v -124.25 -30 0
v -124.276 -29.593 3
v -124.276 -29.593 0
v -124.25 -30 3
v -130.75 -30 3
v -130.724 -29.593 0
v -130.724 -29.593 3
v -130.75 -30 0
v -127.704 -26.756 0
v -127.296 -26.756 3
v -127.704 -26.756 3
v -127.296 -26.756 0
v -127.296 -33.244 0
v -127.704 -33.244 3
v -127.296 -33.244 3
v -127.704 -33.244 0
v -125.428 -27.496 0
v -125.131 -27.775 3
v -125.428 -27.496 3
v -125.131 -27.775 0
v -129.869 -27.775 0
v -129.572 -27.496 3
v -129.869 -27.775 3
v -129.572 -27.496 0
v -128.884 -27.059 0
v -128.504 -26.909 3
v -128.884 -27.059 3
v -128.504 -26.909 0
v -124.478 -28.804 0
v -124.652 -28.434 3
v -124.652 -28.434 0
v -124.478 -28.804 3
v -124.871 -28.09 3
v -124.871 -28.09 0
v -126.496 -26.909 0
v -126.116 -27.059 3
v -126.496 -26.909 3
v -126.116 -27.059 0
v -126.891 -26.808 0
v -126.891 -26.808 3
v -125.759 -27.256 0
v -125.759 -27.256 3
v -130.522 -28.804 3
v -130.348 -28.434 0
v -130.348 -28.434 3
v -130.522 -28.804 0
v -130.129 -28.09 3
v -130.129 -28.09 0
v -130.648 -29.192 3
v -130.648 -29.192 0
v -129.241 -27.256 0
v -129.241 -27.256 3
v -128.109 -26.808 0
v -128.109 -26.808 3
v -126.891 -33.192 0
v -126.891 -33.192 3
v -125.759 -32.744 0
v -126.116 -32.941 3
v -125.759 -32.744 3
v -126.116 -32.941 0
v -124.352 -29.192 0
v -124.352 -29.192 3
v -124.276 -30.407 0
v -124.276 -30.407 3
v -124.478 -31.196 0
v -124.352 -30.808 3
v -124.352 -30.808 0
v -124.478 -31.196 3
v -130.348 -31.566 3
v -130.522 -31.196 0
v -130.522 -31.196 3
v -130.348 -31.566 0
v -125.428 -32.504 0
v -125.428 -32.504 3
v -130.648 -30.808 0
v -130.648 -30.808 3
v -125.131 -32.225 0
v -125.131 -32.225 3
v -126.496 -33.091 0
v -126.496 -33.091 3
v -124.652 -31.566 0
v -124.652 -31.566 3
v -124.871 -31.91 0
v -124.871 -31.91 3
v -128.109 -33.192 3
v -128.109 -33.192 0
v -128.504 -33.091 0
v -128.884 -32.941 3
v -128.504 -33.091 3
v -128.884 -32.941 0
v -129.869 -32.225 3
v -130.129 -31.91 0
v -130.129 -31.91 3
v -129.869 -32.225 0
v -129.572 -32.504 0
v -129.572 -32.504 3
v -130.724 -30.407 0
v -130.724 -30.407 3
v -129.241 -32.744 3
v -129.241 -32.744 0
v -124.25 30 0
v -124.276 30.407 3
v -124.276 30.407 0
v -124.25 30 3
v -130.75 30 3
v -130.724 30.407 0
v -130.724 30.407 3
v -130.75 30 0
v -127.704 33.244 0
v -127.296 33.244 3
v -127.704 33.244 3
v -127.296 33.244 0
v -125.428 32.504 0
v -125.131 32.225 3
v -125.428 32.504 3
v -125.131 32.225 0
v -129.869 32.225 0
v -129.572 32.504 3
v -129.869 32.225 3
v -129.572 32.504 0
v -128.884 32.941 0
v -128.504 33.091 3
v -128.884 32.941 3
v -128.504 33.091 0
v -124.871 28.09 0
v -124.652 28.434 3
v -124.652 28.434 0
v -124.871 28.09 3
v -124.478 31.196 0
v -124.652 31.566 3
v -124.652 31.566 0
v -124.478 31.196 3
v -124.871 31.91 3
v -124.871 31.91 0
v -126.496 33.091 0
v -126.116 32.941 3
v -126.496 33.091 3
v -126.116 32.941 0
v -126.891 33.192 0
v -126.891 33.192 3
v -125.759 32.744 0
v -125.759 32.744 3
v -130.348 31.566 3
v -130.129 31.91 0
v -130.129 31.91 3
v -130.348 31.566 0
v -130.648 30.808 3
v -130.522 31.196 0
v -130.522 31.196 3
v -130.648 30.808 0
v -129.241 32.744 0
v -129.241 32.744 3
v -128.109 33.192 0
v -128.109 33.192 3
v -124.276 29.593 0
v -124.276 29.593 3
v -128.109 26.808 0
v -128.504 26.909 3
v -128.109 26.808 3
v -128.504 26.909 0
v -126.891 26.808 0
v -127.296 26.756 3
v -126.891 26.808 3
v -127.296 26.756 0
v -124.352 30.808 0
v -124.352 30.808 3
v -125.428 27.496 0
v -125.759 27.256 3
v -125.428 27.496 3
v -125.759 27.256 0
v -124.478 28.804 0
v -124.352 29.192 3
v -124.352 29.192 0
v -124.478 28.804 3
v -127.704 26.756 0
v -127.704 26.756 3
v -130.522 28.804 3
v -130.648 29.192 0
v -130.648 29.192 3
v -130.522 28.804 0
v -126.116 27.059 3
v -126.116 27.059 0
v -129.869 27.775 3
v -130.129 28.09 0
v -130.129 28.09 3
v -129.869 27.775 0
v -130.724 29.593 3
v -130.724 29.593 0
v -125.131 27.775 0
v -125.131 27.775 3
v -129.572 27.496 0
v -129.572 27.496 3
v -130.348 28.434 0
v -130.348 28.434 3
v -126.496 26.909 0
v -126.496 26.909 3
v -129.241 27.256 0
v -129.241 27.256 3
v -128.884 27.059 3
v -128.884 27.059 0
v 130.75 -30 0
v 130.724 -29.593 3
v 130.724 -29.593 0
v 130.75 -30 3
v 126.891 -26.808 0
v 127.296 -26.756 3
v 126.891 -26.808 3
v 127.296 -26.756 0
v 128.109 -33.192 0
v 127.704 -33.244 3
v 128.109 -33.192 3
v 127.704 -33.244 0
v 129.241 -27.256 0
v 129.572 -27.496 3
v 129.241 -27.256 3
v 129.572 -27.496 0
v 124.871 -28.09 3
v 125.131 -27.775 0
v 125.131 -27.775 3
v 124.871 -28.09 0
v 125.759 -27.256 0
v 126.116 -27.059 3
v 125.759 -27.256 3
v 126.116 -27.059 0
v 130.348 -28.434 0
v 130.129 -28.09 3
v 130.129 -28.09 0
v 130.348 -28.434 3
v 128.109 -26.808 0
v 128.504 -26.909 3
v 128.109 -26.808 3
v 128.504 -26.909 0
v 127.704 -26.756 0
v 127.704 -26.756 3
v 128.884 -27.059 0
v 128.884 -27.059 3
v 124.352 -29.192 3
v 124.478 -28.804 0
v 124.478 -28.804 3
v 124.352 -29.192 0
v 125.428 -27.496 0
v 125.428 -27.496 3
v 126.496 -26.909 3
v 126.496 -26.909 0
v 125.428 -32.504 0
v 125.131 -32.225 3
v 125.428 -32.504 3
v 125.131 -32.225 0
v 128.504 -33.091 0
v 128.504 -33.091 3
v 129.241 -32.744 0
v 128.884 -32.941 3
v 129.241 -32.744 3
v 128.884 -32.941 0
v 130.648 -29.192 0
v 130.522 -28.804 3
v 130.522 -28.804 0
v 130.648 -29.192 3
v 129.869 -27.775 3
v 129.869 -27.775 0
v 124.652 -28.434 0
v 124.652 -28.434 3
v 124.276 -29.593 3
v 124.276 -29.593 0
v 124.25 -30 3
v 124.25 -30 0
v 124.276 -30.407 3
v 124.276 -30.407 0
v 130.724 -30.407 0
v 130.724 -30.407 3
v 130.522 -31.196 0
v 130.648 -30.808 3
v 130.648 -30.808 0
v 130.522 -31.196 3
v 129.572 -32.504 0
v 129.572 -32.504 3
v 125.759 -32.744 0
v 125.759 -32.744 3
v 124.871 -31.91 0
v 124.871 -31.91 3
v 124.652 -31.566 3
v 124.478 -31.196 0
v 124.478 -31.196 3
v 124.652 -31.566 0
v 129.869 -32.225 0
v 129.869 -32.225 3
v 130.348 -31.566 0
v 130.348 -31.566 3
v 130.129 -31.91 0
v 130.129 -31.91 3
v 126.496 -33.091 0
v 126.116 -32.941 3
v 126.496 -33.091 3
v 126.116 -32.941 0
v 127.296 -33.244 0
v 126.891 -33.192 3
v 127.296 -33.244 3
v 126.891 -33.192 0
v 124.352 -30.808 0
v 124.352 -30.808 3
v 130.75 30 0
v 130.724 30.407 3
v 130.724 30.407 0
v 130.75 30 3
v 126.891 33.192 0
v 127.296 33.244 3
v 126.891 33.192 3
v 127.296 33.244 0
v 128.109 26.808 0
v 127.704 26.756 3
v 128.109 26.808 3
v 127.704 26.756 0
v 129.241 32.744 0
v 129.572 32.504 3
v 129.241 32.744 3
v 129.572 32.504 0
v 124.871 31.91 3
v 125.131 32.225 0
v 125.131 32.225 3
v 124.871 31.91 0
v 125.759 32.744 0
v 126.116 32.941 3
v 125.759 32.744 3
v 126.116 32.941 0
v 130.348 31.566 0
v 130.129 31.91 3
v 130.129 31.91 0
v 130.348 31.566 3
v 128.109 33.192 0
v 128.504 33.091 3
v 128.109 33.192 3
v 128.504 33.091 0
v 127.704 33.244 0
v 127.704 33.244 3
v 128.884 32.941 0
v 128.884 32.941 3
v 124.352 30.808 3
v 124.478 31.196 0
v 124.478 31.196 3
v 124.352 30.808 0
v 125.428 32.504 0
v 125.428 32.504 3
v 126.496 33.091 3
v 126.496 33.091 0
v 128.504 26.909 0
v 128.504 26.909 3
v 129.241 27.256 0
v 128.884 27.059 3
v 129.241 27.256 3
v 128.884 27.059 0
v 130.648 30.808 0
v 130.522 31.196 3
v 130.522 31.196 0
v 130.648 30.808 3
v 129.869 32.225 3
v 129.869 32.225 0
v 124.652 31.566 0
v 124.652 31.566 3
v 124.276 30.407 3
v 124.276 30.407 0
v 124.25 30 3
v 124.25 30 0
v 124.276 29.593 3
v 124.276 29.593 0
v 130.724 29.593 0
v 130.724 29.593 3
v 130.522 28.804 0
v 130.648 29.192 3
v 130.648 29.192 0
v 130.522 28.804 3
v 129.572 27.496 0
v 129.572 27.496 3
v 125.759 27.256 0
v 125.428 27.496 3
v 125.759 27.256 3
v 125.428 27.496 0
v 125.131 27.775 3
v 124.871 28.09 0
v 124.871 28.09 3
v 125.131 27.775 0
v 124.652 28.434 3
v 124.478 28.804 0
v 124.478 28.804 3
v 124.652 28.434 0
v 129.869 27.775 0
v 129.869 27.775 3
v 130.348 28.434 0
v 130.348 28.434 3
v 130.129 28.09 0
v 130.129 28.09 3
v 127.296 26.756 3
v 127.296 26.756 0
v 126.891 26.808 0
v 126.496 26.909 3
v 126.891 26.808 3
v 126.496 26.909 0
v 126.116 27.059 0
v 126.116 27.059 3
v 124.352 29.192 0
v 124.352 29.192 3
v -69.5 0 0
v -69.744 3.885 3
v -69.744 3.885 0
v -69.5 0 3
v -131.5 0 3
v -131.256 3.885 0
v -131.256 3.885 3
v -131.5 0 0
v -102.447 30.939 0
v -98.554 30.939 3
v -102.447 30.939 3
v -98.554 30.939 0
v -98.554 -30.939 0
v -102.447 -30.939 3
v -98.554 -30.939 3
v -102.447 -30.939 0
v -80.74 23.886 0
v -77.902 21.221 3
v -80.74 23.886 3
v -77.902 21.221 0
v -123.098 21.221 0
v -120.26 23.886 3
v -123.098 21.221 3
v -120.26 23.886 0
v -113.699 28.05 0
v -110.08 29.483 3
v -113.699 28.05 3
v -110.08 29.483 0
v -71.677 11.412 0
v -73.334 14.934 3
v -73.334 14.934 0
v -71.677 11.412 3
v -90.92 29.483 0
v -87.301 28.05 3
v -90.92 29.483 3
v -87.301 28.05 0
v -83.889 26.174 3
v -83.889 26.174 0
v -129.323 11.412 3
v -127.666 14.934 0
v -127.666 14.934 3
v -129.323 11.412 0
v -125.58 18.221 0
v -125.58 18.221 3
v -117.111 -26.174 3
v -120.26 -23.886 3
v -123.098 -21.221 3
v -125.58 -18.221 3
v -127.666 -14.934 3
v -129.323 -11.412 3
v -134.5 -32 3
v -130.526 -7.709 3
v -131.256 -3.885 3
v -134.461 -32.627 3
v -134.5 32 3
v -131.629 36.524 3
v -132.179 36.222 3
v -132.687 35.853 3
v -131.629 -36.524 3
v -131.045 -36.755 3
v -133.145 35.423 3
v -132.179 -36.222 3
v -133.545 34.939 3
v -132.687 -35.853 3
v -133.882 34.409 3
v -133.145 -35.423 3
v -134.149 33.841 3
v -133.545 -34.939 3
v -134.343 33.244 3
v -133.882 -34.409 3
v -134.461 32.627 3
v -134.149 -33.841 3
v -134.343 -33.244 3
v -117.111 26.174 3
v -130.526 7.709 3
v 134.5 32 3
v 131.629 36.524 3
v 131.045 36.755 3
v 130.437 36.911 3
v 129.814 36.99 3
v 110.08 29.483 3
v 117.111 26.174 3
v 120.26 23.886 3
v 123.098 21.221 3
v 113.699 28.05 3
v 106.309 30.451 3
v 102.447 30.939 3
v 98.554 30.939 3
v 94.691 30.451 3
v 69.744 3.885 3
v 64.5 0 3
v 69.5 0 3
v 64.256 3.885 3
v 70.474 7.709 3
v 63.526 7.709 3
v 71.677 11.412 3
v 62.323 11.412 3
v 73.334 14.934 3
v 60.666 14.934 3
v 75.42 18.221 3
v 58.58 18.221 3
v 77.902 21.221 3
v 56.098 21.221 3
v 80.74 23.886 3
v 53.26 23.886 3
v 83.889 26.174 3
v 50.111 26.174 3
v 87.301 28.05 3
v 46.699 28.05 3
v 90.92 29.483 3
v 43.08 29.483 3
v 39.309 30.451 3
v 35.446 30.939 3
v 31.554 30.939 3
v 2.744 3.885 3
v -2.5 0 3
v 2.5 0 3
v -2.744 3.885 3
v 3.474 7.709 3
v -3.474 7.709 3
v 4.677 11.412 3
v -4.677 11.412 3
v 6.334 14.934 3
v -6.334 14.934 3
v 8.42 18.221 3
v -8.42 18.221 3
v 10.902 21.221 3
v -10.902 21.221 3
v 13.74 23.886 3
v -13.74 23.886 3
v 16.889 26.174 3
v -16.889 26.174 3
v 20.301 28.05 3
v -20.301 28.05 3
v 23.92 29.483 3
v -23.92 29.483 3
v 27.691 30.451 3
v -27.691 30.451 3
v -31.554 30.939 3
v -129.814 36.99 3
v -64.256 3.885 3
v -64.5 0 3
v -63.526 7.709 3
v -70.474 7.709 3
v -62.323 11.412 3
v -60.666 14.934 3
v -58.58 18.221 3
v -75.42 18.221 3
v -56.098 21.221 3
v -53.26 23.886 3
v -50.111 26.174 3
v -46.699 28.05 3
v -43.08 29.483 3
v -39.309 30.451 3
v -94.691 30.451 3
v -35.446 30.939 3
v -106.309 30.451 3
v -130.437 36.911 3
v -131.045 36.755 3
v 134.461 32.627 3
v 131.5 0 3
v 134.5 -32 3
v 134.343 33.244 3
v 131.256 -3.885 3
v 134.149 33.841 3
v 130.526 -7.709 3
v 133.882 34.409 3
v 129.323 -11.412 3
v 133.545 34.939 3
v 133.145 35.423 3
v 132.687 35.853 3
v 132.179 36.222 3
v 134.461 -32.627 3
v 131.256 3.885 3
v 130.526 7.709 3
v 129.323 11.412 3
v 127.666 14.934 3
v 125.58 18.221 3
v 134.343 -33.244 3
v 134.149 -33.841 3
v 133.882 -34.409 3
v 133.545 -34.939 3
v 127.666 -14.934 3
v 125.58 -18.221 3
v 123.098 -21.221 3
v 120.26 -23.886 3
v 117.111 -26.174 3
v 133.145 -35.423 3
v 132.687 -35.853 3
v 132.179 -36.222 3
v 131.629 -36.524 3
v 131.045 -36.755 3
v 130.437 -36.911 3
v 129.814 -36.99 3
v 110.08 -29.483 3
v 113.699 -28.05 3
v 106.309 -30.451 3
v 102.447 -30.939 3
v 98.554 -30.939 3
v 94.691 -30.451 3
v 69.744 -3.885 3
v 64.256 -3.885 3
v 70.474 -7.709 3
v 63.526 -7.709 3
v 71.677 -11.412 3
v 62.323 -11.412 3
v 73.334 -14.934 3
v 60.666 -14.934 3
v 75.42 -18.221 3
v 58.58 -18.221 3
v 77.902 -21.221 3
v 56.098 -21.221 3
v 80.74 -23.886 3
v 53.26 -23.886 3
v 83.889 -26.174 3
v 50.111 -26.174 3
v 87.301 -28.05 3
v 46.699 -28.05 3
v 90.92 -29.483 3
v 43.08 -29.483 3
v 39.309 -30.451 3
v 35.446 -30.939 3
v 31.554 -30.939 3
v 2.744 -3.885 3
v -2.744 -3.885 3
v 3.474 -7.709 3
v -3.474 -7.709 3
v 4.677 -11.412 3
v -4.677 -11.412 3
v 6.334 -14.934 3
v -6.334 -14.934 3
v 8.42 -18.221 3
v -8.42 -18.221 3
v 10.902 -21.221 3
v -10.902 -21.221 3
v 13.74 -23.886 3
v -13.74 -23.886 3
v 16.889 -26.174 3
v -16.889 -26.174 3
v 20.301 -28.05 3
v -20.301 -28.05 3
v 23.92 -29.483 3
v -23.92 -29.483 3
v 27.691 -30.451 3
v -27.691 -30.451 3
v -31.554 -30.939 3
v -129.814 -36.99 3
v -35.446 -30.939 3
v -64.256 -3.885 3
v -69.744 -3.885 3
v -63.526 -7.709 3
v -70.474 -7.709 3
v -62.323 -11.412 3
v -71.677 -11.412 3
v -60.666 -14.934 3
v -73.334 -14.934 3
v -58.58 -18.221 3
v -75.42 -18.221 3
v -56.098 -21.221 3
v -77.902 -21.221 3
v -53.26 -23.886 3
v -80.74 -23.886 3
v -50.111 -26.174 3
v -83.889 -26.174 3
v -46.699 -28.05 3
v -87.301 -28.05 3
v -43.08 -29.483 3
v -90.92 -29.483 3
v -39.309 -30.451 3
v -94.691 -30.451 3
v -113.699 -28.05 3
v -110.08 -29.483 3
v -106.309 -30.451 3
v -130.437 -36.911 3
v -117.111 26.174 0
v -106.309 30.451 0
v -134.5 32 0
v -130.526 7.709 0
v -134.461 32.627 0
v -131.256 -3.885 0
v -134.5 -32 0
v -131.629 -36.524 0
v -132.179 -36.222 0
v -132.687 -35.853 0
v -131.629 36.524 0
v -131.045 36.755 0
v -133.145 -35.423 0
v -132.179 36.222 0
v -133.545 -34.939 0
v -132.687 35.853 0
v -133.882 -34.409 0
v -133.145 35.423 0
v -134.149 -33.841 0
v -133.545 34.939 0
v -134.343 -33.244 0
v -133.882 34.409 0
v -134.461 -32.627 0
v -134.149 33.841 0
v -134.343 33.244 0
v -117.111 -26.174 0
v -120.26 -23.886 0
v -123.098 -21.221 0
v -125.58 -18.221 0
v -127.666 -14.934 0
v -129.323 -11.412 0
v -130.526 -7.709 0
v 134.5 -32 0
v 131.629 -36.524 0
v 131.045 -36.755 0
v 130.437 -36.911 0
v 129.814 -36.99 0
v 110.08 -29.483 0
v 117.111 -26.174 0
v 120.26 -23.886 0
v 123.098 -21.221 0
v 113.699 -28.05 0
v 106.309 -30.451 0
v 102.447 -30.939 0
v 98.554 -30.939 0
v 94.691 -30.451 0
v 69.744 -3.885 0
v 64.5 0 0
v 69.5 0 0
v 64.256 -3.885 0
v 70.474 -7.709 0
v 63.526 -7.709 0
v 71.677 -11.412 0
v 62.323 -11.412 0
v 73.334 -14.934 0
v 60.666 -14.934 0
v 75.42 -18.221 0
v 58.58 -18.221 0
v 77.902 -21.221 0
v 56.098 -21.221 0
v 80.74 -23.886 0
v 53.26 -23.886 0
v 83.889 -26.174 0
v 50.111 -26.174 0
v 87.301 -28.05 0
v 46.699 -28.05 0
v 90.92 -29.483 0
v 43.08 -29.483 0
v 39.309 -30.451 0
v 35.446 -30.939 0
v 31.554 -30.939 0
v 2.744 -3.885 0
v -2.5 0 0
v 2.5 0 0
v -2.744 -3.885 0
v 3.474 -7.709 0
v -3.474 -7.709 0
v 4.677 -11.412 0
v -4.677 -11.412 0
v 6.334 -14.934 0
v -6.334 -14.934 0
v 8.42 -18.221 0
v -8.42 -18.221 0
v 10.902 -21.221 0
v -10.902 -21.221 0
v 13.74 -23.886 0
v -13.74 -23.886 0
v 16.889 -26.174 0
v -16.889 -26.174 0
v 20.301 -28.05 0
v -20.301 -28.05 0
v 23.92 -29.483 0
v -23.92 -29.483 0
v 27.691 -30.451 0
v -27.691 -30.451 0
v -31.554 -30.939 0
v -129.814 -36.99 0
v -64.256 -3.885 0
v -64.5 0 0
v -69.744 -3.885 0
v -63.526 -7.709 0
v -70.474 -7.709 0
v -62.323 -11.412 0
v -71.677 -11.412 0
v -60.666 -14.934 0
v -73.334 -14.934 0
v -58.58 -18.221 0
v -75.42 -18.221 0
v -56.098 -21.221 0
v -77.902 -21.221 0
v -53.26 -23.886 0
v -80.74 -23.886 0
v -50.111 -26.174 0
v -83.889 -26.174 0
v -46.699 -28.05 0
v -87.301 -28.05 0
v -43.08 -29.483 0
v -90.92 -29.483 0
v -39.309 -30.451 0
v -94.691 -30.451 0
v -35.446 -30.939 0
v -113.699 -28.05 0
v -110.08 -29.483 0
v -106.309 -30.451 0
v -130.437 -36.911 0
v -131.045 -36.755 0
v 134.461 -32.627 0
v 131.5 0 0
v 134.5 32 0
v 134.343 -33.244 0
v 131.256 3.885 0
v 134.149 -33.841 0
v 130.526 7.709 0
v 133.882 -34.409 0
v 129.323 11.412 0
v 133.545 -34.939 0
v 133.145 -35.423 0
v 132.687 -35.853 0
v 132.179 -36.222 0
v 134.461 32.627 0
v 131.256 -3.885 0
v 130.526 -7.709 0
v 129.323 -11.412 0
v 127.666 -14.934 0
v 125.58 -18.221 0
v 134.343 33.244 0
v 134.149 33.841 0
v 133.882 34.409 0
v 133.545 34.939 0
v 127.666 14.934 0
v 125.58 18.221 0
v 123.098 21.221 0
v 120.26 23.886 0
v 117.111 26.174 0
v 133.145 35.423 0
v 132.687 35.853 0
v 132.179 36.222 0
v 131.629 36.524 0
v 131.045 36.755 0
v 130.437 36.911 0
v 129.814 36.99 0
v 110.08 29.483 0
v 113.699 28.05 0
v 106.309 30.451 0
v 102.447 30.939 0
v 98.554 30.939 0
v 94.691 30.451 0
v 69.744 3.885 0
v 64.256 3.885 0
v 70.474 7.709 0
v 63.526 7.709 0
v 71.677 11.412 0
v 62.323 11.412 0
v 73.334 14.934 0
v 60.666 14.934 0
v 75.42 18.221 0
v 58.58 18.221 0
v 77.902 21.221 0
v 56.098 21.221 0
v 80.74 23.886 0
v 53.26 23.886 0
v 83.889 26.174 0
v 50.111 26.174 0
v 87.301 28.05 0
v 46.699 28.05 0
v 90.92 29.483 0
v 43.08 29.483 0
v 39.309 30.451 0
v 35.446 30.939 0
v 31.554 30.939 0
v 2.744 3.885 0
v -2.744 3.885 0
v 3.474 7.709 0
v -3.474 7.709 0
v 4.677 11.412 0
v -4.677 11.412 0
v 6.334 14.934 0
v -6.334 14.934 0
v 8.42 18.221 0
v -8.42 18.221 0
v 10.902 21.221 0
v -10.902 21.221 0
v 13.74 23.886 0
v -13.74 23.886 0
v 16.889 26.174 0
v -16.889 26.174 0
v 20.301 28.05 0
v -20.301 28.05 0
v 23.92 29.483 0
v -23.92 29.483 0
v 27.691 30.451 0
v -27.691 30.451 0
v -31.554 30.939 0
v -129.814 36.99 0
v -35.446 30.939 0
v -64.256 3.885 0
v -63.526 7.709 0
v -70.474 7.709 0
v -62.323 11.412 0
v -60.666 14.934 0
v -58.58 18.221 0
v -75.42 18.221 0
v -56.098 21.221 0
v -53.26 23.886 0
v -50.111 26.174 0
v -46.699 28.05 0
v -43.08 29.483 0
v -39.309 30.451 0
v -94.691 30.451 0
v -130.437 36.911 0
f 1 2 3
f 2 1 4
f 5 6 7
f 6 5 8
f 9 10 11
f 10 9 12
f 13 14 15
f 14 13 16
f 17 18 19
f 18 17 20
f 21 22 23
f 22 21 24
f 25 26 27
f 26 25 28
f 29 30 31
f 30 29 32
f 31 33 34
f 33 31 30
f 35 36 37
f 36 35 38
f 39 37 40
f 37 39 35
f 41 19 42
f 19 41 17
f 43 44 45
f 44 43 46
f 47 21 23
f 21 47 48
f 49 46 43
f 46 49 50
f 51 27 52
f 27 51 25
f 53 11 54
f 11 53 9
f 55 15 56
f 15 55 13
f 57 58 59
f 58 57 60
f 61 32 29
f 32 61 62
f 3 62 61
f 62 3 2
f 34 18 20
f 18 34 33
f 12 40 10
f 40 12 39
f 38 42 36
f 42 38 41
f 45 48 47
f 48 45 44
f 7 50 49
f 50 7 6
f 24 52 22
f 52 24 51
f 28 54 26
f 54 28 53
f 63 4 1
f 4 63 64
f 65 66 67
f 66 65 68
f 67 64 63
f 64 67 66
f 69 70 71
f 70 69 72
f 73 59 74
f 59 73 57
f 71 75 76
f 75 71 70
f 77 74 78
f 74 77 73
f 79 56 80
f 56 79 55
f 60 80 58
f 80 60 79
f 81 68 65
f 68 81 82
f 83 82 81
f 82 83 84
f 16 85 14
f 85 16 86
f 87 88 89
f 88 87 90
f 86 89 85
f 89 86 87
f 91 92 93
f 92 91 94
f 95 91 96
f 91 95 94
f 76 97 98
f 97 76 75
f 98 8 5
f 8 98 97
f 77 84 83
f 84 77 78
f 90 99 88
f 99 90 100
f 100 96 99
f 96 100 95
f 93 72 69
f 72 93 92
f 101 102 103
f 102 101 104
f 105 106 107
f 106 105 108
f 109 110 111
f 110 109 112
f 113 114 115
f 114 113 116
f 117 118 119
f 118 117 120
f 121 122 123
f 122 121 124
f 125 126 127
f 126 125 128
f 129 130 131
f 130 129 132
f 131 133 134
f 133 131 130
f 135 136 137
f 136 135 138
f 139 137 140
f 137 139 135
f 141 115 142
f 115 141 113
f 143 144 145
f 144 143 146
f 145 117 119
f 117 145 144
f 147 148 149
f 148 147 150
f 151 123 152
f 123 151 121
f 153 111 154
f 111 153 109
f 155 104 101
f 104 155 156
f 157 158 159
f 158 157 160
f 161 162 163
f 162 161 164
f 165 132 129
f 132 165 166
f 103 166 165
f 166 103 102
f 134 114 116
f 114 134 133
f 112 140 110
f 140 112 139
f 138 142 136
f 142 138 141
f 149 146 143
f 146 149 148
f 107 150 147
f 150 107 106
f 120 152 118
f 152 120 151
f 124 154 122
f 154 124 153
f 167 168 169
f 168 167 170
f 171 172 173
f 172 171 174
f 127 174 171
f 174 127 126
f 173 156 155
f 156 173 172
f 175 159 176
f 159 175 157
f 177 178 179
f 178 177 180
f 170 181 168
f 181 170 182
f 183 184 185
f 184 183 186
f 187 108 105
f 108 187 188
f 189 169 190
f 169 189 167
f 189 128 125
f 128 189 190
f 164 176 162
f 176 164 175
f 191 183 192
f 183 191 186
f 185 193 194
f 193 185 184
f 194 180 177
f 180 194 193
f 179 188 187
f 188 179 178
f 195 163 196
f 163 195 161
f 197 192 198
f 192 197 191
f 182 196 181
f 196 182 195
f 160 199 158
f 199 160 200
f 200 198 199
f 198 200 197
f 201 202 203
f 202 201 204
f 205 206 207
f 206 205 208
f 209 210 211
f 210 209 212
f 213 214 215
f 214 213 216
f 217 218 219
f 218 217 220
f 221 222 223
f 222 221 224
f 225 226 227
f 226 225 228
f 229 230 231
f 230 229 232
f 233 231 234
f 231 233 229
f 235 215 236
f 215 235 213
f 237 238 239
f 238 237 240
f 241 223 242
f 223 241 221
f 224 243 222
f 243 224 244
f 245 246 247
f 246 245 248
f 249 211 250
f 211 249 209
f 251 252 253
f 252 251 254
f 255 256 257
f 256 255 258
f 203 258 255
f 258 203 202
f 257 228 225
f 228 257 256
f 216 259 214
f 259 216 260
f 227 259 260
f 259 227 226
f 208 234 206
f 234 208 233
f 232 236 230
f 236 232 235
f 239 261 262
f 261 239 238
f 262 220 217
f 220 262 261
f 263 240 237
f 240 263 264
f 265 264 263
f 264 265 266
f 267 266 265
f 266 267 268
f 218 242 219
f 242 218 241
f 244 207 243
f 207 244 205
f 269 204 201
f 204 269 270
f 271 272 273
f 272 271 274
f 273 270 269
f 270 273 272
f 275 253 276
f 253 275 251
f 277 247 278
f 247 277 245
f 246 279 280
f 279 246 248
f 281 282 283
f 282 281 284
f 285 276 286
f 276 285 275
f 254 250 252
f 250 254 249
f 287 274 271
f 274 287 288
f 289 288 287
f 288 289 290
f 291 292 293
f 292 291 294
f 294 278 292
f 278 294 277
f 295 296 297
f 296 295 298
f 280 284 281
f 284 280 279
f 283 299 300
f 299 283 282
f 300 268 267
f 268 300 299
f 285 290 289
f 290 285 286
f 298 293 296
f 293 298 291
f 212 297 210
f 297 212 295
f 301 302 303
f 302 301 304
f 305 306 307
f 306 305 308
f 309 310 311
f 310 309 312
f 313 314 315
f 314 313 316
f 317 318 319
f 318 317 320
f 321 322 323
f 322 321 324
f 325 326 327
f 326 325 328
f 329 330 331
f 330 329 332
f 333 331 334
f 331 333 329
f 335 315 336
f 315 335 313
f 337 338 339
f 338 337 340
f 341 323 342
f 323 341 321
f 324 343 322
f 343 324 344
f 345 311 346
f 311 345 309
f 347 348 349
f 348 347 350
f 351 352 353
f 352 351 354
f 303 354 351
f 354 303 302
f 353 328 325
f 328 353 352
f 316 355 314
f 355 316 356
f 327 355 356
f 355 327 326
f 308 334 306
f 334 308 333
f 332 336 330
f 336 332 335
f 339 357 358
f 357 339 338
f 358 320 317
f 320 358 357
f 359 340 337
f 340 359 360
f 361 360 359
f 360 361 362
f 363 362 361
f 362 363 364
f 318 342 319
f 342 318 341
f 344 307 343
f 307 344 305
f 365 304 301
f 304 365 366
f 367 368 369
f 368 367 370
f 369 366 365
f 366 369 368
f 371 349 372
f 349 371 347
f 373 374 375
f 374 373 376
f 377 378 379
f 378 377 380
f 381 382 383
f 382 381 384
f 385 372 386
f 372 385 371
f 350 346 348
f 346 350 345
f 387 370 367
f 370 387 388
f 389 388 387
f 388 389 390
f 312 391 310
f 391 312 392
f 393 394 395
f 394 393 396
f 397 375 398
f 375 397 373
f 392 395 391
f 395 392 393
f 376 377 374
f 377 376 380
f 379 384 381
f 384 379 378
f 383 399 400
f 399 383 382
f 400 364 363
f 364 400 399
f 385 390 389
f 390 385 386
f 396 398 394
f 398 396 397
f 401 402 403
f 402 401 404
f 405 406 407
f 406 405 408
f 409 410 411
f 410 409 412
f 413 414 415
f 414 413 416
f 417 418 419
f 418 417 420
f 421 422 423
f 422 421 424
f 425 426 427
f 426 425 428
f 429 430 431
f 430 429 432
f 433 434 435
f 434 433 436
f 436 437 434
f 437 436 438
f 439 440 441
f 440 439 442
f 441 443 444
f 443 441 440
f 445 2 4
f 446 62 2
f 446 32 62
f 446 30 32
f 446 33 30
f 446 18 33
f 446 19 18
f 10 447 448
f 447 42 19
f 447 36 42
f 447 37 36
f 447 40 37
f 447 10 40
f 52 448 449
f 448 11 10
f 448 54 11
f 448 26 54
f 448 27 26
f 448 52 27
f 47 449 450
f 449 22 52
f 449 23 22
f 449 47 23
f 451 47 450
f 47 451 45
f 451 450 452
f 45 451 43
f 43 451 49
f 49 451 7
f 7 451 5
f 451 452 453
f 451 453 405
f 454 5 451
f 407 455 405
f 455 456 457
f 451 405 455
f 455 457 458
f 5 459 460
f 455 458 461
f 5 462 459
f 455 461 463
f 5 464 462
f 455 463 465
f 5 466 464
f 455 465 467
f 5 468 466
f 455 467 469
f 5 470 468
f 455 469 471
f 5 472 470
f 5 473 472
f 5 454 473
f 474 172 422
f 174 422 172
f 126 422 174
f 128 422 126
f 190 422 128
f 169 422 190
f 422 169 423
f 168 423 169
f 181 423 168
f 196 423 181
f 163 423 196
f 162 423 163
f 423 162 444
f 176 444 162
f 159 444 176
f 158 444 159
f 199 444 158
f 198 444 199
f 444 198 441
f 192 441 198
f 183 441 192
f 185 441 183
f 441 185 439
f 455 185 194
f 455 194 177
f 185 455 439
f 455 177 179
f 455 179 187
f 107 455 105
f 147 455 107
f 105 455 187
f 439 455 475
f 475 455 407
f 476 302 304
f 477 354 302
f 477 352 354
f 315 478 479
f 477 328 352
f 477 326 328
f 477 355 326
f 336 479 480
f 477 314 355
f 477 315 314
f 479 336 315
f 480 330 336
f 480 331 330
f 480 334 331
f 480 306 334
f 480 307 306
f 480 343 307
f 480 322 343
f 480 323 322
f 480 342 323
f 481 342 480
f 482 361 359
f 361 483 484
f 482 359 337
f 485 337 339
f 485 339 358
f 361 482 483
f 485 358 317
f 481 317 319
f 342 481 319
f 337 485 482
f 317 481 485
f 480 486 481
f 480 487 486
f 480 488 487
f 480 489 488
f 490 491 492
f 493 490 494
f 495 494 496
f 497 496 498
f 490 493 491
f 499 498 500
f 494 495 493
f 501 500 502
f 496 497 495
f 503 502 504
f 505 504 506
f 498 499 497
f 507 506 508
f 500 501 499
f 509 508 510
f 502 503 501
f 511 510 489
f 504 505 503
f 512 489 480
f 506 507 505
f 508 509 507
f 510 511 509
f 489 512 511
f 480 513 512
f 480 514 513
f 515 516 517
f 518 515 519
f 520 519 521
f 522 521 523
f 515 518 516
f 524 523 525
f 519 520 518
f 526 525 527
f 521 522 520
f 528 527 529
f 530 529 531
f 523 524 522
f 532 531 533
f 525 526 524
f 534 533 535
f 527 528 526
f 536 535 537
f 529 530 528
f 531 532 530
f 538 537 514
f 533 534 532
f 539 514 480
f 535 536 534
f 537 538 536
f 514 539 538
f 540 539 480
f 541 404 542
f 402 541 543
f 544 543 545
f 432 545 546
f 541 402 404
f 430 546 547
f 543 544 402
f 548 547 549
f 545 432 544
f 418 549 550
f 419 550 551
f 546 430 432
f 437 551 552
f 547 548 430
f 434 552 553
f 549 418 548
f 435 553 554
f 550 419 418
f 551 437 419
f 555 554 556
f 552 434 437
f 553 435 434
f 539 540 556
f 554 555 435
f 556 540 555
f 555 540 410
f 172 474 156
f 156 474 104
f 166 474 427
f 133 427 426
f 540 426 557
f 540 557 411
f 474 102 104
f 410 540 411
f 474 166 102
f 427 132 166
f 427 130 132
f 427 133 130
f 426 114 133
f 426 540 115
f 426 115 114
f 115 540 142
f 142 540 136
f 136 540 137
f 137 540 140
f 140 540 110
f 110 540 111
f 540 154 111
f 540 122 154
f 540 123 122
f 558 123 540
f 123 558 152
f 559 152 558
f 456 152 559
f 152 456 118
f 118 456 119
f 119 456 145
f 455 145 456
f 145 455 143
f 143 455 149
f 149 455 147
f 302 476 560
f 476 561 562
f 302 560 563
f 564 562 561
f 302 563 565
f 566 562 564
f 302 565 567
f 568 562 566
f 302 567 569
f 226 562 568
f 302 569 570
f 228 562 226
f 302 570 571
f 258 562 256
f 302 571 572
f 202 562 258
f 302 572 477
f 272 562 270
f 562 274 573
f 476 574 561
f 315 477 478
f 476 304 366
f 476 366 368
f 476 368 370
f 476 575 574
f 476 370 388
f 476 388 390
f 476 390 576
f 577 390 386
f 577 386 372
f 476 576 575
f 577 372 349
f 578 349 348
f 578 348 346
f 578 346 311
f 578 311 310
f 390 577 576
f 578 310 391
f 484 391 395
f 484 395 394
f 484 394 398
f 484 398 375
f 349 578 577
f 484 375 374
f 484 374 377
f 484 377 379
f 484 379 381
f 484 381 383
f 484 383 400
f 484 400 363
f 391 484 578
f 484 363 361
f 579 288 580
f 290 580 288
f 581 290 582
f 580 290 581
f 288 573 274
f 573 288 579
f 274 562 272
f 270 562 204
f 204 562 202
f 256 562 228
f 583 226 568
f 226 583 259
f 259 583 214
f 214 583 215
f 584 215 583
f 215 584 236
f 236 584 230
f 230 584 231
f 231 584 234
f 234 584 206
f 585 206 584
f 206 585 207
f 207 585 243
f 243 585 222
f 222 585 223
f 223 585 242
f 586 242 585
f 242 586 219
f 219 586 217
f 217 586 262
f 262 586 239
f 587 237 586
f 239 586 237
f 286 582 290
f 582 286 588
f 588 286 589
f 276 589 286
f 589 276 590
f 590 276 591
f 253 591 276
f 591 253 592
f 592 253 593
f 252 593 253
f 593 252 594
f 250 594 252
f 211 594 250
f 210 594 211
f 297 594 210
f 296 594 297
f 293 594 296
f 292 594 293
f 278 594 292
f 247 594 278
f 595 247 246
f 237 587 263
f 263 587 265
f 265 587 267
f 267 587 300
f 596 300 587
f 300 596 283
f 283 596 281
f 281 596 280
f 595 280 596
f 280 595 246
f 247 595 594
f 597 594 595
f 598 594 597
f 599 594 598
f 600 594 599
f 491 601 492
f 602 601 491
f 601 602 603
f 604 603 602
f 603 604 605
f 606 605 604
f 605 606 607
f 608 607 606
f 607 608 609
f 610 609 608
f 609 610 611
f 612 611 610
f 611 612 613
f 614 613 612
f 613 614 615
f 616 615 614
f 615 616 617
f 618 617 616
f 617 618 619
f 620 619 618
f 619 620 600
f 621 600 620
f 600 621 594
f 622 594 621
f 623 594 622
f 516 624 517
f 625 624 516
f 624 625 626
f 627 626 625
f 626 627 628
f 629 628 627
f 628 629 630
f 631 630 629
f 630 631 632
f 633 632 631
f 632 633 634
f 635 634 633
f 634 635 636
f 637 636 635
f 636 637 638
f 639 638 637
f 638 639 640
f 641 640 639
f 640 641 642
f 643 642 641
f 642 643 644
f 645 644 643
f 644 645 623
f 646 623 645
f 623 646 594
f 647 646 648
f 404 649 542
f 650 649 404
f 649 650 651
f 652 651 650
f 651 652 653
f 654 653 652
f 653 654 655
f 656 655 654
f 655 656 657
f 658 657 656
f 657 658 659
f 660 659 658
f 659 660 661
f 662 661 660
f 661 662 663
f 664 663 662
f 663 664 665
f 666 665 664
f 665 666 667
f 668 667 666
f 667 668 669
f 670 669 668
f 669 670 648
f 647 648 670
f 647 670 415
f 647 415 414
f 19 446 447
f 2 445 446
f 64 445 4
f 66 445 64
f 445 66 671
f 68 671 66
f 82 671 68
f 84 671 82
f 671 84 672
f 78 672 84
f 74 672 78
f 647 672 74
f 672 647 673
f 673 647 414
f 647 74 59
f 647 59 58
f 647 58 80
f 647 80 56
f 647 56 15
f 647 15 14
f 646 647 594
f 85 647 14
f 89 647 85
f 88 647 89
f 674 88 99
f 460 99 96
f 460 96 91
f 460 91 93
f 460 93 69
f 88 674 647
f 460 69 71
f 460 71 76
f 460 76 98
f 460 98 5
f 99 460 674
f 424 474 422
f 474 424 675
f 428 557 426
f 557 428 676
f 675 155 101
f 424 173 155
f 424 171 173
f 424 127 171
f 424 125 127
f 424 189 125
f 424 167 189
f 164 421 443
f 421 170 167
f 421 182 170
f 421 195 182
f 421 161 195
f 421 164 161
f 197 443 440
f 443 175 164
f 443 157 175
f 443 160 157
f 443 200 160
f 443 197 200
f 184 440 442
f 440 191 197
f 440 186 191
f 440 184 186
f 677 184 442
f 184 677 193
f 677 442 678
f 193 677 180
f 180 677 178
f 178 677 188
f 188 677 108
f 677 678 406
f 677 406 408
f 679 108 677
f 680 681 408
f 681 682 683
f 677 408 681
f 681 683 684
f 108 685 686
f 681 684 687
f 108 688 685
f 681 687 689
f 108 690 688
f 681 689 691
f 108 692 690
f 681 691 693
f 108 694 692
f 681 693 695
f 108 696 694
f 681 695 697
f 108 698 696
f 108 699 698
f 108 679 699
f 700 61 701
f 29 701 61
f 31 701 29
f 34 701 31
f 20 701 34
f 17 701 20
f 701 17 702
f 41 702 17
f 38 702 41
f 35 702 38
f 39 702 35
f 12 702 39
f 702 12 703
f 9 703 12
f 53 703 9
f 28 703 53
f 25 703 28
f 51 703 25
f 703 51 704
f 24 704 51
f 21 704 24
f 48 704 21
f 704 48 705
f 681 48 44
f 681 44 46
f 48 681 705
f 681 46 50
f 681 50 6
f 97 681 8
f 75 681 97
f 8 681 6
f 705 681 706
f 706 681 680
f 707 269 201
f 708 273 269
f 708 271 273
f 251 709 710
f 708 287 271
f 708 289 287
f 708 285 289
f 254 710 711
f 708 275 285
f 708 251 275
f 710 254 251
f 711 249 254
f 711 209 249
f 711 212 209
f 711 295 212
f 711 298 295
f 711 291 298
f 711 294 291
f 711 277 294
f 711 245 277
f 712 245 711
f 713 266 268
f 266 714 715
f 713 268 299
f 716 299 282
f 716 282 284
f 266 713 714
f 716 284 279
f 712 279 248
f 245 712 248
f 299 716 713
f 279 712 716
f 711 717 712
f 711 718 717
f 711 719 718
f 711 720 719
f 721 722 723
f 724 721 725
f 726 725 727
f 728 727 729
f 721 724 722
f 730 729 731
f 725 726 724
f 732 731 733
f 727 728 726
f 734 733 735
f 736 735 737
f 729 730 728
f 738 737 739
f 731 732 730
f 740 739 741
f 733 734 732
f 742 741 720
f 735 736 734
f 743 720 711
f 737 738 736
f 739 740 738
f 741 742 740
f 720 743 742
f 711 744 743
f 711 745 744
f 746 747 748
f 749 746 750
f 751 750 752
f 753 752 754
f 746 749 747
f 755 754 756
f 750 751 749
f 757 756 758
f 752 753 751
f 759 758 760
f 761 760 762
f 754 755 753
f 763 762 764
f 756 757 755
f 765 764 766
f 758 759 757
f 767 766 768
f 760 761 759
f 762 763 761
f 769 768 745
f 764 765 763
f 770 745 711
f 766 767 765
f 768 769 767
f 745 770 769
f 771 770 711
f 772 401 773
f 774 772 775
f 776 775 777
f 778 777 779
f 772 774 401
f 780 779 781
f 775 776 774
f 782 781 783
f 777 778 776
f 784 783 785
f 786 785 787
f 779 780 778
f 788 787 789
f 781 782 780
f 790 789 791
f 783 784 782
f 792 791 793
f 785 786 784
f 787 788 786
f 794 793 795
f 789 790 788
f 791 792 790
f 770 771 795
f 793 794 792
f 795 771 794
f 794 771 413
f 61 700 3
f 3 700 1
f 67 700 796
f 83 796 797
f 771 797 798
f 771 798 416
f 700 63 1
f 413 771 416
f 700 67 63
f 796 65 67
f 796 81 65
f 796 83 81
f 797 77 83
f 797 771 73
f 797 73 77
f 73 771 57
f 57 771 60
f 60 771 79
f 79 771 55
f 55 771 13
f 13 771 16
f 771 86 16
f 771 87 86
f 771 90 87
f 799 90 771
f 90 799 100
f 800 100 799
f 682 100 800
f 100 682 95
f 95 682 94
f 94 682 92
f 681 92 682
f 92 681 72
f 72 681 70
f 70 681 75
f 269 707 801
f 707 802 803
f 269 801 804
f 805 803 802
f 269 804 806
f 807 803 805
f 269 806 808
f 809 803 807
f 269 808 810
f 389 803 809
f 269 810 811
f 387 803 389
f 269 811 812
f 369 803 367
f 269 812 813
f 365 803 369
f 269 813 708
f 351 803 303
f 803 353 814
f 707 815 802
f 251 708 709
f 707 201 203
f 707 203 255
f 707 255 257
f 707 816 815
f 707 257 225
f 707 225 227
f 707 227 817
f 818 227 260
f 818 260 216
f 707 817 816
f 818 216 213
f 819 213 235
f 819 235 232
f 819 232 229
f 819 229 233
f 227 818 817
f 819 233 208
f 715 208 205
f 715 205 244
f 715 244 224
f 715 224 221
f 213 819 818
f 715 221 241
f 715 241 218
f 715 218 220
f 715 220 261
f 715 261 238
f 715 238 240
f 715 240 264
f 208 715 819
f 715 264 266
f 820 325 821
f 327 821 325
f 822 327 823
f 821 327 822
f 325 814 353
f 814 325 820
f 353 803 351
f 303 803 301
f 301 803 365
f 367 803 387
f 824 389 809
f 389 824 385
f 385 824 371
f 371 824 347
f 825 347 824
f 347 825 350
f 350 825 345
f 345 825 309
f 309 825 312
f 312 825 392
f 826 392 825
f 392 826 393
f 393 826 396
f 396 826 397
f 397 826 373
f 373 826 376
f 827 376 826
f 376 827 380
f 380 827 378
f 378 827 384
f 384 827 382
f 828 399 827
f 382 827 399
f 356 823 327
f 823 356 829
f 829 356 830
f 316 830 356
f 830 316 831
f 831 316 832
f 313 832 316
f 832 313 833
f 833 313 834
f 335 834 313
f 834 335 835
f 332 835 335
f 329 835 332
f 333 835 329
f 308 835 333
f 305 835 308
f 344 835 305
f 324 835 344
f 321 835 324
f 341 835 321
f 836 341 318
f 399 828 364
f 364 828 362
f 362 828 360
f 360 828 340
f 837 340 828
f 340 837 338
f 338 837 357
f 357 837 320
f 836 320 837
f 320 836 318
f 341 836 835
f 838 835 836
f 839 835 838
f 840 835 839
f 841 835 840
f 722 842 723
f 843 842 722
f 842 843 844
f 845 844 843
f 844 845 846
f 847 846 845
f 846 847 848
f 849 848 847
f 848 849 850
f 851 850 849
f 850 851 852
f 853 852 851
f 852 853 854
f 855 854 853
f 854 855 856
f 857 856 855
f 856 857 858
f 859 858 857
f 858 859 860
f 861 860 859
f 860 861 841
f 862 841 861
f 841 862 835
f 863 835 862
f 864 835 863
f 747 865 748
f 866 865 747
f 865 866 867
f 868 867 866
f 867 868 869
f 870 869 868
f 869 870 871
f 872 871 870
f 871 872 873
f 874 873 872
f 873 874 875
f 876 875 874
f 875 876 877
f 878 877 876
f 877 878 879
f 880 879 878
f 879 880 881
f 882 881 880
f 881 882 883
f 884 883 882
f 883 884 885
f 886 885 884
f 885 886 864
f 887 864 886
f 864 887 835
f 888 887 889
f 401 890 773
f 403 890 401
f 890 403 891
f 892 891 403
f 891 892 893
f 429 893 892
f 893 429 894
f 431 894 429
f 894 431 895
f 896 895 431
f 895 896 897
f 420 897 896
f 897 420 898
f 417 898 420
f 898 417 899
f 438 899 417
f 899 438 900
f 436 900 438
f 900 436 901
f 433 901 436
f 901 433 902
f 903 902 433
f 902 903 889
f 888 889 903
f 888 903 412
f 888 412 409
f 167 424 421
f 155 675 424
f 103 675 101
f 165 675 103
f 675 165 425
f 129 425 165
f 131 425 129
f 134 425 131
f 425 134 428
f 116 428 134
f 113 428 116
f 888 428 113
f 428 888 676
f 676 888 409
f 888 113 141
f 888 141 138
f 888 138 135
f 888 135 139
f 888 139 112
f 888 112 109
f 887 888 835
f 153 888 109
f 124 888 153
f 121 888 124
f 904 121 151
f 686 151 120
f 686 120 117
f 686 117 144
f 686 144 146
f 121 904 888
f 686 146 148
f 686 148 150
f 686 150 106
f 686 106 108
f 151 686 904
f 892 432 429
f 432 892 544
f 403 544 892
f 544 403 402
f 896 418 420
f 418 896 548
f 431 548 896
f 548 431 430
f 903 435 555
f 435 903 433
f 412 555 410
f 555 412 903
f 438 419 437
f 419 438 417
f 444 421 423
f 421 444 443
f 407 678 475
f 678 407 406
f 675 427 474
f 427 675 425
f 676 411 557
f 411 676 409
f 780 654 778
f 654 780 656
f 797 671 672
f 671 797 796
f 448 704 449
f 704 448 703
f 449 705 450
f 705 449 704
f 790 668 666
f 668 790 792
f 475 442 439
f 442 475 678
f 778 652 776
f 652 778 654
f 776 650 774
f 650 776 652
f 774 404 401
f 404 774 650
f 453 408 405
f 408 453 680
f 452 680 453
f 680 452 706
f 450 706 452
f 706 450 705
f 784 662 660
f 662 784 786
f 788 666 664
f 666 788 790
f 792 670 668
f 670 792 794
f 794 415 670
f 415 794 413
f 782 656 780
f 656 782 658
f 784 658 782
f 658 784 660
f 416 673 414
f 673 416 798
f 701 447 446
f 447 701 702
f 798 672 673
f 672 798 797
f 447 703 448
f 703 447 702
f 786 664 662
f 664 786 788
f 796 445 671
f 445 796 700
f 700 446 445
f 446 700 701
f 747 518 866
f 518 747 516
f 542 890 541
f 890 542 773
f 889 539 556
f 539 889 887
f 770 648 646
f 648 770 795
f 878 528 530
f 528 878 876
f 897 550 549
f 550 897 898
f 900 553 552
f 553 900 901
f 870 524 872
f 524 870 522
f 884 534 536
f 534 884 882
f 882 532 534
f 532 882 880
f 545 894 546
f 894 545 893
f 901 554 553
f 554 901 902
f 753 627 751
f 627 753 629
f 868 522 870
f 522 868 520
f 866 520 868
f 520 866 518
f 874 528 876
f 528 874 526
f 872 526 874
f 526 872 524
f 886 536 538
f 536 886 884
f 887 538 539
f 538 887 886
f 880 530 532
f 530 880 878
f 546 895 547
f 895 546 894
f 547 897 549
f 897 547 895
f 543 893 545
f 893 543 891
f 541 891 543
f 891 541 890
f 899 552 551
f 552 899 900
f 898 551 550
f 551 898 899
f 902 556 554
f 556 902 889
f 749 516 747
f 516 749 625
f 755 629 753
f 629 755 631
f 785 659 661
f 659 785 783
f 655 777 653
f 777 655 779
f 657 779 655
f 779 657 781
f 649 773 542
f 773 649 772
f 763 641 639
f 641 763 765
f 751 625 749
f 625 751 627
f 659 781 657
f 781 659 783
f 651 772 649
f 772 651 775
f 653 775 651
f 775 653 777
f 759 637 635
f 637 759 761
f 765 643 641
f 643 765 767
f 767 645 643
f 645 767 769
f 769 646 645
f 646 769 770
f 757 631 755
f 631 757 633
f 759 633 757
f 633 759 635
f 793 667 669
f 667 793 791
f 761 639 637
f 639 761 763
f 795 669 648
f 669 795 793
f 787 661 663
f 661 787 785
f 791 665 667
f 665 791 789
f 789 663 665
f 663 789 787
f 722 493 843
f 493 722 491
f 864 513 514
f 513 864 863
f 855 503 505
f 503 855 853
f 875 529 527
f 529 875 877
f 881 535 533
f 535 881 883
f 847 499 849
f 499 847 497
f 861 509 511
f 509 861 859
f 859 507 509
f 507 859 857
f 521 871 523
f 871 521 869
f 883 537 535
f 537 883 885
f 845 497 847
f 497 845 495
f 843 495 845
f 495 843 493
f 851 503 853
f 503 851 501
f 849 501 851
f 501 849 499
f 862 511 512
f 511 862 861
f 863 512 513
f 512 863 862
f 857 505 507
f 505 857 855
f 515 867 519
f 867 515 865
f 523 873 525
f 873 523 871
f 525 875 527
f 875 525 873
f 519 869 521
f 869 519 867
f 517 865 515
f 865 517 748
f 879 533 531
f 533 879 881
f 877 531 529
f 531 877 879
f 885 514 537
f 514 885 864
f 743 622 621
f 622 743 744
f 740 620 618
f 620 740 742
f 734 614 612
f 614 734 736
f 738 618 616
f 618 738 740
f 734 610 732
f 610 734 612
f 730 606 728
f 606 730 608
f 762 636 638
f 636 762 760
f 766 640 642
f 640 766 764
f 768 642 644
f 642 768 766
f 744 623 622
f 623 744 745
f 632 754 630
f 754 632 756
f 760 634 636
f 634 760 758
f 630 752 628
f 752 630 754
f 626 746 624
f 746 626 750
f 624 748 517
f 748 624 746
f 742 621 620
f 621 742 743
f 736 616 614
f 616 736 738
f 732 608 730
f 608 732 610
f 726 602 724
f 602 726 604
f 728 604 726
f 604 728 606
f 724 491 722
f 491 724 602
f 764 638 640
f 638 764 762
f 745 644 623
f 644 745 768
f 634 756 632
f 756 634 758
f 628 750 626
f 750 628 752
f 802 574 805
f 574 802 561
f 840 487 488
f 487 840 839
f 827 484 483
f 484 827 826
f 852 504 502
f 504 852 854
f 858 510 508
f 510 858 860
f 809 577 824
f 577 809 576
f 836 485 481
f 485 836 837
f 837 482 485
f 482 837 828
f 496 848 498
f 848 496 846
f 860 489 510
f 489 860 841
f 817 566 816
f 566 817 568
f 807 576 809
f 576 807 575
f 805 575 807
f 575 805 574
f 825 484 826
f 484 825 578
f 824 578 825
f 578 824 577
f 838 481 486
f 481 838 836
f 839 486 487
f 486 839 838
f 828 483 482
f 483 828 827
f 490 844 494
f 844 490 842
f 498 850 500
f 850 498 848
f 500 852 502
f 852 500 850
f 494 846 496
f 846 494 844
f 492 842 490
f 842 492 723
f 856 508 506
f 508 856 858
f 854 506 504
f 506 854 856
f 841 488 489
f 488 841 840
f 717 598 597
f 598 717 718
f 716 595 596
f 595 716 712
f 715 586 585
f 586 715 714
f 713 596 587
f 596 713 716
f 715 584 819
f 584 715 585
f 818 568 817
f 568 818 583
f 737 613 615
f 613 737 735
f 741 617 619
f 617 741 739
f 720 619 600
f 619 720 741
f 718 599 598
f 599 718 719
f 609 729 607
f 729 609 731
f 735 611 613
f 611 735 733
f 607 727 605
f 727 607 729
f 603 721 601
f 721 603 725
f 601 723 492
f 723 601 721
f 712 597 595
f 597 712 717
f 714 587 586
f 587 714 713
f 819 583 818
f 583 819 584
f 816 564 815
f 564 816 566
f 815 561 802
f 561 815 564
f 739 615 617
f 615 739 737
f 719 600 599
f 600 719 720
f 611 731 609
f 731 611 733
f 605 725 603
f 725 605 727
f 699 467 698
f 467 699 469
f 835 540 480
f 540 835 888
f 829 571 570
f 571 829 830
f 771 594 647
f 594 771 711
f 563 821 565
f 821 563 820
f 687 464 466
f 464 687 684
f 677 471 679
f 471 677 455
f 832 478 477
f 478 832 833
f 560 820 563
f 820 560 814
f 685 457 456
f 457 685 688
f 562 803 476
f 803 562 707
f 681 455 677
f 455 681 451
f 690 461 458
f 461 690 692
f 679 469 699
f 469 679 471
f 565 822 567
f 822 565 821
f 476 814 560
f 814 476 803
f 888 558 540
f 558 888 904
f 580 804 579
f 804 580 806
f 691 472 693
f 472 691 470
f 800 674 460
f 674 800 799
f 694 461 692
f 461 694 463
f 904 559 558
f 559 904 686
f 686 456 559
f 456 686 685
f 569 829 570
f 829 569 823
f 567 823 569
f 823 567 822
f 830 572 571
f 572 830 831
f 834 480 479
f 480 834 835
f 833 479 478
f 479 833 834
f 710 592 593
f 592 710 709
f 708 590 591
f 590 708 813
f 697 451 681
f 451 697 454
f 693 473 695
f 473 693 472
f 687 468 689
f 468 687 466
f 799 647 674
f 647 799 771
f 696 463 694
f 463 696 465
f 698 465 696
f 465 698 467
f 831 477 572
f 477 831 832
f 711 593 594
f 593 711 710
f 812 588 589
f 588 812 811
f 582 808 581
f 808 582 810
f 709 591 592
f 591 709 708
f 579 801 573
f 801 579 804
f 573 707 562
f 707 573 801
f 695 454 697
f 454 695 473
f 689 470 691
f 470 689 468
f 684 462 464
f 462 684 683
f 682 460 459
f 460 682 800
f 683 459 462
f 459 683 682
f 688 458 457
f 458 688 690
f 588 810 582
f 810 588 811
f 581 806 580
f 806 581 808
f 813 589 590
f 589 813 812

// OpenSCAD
$fn = 50;


difference() {
	union() {
		hull() {
			translate(v = [-129.5000000000, 32.0000000000, 0]) {
				cylinder(h = 3, r = 5);
			}
			translate(v = [129.5000000000, 32.0000000000, 0]) {
				cylinder(h = 3, r = 5);
			}
			translate(v = [-129.5000000000, -32.0000000000, 0]) {
				cylinder(h = 3, r = 5);
			}
			translate(v = [129.5000000000, -32.0000000000, 0]) {
				cylinder(h = 3, r = 5);
			}
		}
	}
	union() {
		#translate(v = [-127.5000000000, -30.0000000000, -100.0000000000]) {
			cylinder(h = 200, r = 3.2500000000);
		}
		#translate(v = [-127.5000000000, 30.0000000000, -100.0000000000]) {
			cylinder(h = 200, r = 3.2500000000);
		}
		#translate(v = [127.5000000000, -30.0000000000, -100.0000000000]) {
			cylinder(h = 200, r = 3.2500000000);
		}
		#translate(v = [127.5000000000, 30.0000000000, -100.0000000000]) {
			cylinder(h = 200, r = 3.2500000000);
		}
		#translate(v = [-100.5000000000, 0, 0]) {
			cylinder(h = 3, r = 31.0000000000);
		}
		#translate(v = [-33.5000000000, 0, 0]) {
			cylinder(h = 3, r = 31.0000000000);
		}
		#translate(v = [33.5000000000, 0, 0]) {
			cylinder(h = 3, r = 31.0000000000);
		}
		#translate(v = [100.5000000000, 0, 0]) {
			cylinder(h = 3, r = 31.0000000000);
		}
	}
}
